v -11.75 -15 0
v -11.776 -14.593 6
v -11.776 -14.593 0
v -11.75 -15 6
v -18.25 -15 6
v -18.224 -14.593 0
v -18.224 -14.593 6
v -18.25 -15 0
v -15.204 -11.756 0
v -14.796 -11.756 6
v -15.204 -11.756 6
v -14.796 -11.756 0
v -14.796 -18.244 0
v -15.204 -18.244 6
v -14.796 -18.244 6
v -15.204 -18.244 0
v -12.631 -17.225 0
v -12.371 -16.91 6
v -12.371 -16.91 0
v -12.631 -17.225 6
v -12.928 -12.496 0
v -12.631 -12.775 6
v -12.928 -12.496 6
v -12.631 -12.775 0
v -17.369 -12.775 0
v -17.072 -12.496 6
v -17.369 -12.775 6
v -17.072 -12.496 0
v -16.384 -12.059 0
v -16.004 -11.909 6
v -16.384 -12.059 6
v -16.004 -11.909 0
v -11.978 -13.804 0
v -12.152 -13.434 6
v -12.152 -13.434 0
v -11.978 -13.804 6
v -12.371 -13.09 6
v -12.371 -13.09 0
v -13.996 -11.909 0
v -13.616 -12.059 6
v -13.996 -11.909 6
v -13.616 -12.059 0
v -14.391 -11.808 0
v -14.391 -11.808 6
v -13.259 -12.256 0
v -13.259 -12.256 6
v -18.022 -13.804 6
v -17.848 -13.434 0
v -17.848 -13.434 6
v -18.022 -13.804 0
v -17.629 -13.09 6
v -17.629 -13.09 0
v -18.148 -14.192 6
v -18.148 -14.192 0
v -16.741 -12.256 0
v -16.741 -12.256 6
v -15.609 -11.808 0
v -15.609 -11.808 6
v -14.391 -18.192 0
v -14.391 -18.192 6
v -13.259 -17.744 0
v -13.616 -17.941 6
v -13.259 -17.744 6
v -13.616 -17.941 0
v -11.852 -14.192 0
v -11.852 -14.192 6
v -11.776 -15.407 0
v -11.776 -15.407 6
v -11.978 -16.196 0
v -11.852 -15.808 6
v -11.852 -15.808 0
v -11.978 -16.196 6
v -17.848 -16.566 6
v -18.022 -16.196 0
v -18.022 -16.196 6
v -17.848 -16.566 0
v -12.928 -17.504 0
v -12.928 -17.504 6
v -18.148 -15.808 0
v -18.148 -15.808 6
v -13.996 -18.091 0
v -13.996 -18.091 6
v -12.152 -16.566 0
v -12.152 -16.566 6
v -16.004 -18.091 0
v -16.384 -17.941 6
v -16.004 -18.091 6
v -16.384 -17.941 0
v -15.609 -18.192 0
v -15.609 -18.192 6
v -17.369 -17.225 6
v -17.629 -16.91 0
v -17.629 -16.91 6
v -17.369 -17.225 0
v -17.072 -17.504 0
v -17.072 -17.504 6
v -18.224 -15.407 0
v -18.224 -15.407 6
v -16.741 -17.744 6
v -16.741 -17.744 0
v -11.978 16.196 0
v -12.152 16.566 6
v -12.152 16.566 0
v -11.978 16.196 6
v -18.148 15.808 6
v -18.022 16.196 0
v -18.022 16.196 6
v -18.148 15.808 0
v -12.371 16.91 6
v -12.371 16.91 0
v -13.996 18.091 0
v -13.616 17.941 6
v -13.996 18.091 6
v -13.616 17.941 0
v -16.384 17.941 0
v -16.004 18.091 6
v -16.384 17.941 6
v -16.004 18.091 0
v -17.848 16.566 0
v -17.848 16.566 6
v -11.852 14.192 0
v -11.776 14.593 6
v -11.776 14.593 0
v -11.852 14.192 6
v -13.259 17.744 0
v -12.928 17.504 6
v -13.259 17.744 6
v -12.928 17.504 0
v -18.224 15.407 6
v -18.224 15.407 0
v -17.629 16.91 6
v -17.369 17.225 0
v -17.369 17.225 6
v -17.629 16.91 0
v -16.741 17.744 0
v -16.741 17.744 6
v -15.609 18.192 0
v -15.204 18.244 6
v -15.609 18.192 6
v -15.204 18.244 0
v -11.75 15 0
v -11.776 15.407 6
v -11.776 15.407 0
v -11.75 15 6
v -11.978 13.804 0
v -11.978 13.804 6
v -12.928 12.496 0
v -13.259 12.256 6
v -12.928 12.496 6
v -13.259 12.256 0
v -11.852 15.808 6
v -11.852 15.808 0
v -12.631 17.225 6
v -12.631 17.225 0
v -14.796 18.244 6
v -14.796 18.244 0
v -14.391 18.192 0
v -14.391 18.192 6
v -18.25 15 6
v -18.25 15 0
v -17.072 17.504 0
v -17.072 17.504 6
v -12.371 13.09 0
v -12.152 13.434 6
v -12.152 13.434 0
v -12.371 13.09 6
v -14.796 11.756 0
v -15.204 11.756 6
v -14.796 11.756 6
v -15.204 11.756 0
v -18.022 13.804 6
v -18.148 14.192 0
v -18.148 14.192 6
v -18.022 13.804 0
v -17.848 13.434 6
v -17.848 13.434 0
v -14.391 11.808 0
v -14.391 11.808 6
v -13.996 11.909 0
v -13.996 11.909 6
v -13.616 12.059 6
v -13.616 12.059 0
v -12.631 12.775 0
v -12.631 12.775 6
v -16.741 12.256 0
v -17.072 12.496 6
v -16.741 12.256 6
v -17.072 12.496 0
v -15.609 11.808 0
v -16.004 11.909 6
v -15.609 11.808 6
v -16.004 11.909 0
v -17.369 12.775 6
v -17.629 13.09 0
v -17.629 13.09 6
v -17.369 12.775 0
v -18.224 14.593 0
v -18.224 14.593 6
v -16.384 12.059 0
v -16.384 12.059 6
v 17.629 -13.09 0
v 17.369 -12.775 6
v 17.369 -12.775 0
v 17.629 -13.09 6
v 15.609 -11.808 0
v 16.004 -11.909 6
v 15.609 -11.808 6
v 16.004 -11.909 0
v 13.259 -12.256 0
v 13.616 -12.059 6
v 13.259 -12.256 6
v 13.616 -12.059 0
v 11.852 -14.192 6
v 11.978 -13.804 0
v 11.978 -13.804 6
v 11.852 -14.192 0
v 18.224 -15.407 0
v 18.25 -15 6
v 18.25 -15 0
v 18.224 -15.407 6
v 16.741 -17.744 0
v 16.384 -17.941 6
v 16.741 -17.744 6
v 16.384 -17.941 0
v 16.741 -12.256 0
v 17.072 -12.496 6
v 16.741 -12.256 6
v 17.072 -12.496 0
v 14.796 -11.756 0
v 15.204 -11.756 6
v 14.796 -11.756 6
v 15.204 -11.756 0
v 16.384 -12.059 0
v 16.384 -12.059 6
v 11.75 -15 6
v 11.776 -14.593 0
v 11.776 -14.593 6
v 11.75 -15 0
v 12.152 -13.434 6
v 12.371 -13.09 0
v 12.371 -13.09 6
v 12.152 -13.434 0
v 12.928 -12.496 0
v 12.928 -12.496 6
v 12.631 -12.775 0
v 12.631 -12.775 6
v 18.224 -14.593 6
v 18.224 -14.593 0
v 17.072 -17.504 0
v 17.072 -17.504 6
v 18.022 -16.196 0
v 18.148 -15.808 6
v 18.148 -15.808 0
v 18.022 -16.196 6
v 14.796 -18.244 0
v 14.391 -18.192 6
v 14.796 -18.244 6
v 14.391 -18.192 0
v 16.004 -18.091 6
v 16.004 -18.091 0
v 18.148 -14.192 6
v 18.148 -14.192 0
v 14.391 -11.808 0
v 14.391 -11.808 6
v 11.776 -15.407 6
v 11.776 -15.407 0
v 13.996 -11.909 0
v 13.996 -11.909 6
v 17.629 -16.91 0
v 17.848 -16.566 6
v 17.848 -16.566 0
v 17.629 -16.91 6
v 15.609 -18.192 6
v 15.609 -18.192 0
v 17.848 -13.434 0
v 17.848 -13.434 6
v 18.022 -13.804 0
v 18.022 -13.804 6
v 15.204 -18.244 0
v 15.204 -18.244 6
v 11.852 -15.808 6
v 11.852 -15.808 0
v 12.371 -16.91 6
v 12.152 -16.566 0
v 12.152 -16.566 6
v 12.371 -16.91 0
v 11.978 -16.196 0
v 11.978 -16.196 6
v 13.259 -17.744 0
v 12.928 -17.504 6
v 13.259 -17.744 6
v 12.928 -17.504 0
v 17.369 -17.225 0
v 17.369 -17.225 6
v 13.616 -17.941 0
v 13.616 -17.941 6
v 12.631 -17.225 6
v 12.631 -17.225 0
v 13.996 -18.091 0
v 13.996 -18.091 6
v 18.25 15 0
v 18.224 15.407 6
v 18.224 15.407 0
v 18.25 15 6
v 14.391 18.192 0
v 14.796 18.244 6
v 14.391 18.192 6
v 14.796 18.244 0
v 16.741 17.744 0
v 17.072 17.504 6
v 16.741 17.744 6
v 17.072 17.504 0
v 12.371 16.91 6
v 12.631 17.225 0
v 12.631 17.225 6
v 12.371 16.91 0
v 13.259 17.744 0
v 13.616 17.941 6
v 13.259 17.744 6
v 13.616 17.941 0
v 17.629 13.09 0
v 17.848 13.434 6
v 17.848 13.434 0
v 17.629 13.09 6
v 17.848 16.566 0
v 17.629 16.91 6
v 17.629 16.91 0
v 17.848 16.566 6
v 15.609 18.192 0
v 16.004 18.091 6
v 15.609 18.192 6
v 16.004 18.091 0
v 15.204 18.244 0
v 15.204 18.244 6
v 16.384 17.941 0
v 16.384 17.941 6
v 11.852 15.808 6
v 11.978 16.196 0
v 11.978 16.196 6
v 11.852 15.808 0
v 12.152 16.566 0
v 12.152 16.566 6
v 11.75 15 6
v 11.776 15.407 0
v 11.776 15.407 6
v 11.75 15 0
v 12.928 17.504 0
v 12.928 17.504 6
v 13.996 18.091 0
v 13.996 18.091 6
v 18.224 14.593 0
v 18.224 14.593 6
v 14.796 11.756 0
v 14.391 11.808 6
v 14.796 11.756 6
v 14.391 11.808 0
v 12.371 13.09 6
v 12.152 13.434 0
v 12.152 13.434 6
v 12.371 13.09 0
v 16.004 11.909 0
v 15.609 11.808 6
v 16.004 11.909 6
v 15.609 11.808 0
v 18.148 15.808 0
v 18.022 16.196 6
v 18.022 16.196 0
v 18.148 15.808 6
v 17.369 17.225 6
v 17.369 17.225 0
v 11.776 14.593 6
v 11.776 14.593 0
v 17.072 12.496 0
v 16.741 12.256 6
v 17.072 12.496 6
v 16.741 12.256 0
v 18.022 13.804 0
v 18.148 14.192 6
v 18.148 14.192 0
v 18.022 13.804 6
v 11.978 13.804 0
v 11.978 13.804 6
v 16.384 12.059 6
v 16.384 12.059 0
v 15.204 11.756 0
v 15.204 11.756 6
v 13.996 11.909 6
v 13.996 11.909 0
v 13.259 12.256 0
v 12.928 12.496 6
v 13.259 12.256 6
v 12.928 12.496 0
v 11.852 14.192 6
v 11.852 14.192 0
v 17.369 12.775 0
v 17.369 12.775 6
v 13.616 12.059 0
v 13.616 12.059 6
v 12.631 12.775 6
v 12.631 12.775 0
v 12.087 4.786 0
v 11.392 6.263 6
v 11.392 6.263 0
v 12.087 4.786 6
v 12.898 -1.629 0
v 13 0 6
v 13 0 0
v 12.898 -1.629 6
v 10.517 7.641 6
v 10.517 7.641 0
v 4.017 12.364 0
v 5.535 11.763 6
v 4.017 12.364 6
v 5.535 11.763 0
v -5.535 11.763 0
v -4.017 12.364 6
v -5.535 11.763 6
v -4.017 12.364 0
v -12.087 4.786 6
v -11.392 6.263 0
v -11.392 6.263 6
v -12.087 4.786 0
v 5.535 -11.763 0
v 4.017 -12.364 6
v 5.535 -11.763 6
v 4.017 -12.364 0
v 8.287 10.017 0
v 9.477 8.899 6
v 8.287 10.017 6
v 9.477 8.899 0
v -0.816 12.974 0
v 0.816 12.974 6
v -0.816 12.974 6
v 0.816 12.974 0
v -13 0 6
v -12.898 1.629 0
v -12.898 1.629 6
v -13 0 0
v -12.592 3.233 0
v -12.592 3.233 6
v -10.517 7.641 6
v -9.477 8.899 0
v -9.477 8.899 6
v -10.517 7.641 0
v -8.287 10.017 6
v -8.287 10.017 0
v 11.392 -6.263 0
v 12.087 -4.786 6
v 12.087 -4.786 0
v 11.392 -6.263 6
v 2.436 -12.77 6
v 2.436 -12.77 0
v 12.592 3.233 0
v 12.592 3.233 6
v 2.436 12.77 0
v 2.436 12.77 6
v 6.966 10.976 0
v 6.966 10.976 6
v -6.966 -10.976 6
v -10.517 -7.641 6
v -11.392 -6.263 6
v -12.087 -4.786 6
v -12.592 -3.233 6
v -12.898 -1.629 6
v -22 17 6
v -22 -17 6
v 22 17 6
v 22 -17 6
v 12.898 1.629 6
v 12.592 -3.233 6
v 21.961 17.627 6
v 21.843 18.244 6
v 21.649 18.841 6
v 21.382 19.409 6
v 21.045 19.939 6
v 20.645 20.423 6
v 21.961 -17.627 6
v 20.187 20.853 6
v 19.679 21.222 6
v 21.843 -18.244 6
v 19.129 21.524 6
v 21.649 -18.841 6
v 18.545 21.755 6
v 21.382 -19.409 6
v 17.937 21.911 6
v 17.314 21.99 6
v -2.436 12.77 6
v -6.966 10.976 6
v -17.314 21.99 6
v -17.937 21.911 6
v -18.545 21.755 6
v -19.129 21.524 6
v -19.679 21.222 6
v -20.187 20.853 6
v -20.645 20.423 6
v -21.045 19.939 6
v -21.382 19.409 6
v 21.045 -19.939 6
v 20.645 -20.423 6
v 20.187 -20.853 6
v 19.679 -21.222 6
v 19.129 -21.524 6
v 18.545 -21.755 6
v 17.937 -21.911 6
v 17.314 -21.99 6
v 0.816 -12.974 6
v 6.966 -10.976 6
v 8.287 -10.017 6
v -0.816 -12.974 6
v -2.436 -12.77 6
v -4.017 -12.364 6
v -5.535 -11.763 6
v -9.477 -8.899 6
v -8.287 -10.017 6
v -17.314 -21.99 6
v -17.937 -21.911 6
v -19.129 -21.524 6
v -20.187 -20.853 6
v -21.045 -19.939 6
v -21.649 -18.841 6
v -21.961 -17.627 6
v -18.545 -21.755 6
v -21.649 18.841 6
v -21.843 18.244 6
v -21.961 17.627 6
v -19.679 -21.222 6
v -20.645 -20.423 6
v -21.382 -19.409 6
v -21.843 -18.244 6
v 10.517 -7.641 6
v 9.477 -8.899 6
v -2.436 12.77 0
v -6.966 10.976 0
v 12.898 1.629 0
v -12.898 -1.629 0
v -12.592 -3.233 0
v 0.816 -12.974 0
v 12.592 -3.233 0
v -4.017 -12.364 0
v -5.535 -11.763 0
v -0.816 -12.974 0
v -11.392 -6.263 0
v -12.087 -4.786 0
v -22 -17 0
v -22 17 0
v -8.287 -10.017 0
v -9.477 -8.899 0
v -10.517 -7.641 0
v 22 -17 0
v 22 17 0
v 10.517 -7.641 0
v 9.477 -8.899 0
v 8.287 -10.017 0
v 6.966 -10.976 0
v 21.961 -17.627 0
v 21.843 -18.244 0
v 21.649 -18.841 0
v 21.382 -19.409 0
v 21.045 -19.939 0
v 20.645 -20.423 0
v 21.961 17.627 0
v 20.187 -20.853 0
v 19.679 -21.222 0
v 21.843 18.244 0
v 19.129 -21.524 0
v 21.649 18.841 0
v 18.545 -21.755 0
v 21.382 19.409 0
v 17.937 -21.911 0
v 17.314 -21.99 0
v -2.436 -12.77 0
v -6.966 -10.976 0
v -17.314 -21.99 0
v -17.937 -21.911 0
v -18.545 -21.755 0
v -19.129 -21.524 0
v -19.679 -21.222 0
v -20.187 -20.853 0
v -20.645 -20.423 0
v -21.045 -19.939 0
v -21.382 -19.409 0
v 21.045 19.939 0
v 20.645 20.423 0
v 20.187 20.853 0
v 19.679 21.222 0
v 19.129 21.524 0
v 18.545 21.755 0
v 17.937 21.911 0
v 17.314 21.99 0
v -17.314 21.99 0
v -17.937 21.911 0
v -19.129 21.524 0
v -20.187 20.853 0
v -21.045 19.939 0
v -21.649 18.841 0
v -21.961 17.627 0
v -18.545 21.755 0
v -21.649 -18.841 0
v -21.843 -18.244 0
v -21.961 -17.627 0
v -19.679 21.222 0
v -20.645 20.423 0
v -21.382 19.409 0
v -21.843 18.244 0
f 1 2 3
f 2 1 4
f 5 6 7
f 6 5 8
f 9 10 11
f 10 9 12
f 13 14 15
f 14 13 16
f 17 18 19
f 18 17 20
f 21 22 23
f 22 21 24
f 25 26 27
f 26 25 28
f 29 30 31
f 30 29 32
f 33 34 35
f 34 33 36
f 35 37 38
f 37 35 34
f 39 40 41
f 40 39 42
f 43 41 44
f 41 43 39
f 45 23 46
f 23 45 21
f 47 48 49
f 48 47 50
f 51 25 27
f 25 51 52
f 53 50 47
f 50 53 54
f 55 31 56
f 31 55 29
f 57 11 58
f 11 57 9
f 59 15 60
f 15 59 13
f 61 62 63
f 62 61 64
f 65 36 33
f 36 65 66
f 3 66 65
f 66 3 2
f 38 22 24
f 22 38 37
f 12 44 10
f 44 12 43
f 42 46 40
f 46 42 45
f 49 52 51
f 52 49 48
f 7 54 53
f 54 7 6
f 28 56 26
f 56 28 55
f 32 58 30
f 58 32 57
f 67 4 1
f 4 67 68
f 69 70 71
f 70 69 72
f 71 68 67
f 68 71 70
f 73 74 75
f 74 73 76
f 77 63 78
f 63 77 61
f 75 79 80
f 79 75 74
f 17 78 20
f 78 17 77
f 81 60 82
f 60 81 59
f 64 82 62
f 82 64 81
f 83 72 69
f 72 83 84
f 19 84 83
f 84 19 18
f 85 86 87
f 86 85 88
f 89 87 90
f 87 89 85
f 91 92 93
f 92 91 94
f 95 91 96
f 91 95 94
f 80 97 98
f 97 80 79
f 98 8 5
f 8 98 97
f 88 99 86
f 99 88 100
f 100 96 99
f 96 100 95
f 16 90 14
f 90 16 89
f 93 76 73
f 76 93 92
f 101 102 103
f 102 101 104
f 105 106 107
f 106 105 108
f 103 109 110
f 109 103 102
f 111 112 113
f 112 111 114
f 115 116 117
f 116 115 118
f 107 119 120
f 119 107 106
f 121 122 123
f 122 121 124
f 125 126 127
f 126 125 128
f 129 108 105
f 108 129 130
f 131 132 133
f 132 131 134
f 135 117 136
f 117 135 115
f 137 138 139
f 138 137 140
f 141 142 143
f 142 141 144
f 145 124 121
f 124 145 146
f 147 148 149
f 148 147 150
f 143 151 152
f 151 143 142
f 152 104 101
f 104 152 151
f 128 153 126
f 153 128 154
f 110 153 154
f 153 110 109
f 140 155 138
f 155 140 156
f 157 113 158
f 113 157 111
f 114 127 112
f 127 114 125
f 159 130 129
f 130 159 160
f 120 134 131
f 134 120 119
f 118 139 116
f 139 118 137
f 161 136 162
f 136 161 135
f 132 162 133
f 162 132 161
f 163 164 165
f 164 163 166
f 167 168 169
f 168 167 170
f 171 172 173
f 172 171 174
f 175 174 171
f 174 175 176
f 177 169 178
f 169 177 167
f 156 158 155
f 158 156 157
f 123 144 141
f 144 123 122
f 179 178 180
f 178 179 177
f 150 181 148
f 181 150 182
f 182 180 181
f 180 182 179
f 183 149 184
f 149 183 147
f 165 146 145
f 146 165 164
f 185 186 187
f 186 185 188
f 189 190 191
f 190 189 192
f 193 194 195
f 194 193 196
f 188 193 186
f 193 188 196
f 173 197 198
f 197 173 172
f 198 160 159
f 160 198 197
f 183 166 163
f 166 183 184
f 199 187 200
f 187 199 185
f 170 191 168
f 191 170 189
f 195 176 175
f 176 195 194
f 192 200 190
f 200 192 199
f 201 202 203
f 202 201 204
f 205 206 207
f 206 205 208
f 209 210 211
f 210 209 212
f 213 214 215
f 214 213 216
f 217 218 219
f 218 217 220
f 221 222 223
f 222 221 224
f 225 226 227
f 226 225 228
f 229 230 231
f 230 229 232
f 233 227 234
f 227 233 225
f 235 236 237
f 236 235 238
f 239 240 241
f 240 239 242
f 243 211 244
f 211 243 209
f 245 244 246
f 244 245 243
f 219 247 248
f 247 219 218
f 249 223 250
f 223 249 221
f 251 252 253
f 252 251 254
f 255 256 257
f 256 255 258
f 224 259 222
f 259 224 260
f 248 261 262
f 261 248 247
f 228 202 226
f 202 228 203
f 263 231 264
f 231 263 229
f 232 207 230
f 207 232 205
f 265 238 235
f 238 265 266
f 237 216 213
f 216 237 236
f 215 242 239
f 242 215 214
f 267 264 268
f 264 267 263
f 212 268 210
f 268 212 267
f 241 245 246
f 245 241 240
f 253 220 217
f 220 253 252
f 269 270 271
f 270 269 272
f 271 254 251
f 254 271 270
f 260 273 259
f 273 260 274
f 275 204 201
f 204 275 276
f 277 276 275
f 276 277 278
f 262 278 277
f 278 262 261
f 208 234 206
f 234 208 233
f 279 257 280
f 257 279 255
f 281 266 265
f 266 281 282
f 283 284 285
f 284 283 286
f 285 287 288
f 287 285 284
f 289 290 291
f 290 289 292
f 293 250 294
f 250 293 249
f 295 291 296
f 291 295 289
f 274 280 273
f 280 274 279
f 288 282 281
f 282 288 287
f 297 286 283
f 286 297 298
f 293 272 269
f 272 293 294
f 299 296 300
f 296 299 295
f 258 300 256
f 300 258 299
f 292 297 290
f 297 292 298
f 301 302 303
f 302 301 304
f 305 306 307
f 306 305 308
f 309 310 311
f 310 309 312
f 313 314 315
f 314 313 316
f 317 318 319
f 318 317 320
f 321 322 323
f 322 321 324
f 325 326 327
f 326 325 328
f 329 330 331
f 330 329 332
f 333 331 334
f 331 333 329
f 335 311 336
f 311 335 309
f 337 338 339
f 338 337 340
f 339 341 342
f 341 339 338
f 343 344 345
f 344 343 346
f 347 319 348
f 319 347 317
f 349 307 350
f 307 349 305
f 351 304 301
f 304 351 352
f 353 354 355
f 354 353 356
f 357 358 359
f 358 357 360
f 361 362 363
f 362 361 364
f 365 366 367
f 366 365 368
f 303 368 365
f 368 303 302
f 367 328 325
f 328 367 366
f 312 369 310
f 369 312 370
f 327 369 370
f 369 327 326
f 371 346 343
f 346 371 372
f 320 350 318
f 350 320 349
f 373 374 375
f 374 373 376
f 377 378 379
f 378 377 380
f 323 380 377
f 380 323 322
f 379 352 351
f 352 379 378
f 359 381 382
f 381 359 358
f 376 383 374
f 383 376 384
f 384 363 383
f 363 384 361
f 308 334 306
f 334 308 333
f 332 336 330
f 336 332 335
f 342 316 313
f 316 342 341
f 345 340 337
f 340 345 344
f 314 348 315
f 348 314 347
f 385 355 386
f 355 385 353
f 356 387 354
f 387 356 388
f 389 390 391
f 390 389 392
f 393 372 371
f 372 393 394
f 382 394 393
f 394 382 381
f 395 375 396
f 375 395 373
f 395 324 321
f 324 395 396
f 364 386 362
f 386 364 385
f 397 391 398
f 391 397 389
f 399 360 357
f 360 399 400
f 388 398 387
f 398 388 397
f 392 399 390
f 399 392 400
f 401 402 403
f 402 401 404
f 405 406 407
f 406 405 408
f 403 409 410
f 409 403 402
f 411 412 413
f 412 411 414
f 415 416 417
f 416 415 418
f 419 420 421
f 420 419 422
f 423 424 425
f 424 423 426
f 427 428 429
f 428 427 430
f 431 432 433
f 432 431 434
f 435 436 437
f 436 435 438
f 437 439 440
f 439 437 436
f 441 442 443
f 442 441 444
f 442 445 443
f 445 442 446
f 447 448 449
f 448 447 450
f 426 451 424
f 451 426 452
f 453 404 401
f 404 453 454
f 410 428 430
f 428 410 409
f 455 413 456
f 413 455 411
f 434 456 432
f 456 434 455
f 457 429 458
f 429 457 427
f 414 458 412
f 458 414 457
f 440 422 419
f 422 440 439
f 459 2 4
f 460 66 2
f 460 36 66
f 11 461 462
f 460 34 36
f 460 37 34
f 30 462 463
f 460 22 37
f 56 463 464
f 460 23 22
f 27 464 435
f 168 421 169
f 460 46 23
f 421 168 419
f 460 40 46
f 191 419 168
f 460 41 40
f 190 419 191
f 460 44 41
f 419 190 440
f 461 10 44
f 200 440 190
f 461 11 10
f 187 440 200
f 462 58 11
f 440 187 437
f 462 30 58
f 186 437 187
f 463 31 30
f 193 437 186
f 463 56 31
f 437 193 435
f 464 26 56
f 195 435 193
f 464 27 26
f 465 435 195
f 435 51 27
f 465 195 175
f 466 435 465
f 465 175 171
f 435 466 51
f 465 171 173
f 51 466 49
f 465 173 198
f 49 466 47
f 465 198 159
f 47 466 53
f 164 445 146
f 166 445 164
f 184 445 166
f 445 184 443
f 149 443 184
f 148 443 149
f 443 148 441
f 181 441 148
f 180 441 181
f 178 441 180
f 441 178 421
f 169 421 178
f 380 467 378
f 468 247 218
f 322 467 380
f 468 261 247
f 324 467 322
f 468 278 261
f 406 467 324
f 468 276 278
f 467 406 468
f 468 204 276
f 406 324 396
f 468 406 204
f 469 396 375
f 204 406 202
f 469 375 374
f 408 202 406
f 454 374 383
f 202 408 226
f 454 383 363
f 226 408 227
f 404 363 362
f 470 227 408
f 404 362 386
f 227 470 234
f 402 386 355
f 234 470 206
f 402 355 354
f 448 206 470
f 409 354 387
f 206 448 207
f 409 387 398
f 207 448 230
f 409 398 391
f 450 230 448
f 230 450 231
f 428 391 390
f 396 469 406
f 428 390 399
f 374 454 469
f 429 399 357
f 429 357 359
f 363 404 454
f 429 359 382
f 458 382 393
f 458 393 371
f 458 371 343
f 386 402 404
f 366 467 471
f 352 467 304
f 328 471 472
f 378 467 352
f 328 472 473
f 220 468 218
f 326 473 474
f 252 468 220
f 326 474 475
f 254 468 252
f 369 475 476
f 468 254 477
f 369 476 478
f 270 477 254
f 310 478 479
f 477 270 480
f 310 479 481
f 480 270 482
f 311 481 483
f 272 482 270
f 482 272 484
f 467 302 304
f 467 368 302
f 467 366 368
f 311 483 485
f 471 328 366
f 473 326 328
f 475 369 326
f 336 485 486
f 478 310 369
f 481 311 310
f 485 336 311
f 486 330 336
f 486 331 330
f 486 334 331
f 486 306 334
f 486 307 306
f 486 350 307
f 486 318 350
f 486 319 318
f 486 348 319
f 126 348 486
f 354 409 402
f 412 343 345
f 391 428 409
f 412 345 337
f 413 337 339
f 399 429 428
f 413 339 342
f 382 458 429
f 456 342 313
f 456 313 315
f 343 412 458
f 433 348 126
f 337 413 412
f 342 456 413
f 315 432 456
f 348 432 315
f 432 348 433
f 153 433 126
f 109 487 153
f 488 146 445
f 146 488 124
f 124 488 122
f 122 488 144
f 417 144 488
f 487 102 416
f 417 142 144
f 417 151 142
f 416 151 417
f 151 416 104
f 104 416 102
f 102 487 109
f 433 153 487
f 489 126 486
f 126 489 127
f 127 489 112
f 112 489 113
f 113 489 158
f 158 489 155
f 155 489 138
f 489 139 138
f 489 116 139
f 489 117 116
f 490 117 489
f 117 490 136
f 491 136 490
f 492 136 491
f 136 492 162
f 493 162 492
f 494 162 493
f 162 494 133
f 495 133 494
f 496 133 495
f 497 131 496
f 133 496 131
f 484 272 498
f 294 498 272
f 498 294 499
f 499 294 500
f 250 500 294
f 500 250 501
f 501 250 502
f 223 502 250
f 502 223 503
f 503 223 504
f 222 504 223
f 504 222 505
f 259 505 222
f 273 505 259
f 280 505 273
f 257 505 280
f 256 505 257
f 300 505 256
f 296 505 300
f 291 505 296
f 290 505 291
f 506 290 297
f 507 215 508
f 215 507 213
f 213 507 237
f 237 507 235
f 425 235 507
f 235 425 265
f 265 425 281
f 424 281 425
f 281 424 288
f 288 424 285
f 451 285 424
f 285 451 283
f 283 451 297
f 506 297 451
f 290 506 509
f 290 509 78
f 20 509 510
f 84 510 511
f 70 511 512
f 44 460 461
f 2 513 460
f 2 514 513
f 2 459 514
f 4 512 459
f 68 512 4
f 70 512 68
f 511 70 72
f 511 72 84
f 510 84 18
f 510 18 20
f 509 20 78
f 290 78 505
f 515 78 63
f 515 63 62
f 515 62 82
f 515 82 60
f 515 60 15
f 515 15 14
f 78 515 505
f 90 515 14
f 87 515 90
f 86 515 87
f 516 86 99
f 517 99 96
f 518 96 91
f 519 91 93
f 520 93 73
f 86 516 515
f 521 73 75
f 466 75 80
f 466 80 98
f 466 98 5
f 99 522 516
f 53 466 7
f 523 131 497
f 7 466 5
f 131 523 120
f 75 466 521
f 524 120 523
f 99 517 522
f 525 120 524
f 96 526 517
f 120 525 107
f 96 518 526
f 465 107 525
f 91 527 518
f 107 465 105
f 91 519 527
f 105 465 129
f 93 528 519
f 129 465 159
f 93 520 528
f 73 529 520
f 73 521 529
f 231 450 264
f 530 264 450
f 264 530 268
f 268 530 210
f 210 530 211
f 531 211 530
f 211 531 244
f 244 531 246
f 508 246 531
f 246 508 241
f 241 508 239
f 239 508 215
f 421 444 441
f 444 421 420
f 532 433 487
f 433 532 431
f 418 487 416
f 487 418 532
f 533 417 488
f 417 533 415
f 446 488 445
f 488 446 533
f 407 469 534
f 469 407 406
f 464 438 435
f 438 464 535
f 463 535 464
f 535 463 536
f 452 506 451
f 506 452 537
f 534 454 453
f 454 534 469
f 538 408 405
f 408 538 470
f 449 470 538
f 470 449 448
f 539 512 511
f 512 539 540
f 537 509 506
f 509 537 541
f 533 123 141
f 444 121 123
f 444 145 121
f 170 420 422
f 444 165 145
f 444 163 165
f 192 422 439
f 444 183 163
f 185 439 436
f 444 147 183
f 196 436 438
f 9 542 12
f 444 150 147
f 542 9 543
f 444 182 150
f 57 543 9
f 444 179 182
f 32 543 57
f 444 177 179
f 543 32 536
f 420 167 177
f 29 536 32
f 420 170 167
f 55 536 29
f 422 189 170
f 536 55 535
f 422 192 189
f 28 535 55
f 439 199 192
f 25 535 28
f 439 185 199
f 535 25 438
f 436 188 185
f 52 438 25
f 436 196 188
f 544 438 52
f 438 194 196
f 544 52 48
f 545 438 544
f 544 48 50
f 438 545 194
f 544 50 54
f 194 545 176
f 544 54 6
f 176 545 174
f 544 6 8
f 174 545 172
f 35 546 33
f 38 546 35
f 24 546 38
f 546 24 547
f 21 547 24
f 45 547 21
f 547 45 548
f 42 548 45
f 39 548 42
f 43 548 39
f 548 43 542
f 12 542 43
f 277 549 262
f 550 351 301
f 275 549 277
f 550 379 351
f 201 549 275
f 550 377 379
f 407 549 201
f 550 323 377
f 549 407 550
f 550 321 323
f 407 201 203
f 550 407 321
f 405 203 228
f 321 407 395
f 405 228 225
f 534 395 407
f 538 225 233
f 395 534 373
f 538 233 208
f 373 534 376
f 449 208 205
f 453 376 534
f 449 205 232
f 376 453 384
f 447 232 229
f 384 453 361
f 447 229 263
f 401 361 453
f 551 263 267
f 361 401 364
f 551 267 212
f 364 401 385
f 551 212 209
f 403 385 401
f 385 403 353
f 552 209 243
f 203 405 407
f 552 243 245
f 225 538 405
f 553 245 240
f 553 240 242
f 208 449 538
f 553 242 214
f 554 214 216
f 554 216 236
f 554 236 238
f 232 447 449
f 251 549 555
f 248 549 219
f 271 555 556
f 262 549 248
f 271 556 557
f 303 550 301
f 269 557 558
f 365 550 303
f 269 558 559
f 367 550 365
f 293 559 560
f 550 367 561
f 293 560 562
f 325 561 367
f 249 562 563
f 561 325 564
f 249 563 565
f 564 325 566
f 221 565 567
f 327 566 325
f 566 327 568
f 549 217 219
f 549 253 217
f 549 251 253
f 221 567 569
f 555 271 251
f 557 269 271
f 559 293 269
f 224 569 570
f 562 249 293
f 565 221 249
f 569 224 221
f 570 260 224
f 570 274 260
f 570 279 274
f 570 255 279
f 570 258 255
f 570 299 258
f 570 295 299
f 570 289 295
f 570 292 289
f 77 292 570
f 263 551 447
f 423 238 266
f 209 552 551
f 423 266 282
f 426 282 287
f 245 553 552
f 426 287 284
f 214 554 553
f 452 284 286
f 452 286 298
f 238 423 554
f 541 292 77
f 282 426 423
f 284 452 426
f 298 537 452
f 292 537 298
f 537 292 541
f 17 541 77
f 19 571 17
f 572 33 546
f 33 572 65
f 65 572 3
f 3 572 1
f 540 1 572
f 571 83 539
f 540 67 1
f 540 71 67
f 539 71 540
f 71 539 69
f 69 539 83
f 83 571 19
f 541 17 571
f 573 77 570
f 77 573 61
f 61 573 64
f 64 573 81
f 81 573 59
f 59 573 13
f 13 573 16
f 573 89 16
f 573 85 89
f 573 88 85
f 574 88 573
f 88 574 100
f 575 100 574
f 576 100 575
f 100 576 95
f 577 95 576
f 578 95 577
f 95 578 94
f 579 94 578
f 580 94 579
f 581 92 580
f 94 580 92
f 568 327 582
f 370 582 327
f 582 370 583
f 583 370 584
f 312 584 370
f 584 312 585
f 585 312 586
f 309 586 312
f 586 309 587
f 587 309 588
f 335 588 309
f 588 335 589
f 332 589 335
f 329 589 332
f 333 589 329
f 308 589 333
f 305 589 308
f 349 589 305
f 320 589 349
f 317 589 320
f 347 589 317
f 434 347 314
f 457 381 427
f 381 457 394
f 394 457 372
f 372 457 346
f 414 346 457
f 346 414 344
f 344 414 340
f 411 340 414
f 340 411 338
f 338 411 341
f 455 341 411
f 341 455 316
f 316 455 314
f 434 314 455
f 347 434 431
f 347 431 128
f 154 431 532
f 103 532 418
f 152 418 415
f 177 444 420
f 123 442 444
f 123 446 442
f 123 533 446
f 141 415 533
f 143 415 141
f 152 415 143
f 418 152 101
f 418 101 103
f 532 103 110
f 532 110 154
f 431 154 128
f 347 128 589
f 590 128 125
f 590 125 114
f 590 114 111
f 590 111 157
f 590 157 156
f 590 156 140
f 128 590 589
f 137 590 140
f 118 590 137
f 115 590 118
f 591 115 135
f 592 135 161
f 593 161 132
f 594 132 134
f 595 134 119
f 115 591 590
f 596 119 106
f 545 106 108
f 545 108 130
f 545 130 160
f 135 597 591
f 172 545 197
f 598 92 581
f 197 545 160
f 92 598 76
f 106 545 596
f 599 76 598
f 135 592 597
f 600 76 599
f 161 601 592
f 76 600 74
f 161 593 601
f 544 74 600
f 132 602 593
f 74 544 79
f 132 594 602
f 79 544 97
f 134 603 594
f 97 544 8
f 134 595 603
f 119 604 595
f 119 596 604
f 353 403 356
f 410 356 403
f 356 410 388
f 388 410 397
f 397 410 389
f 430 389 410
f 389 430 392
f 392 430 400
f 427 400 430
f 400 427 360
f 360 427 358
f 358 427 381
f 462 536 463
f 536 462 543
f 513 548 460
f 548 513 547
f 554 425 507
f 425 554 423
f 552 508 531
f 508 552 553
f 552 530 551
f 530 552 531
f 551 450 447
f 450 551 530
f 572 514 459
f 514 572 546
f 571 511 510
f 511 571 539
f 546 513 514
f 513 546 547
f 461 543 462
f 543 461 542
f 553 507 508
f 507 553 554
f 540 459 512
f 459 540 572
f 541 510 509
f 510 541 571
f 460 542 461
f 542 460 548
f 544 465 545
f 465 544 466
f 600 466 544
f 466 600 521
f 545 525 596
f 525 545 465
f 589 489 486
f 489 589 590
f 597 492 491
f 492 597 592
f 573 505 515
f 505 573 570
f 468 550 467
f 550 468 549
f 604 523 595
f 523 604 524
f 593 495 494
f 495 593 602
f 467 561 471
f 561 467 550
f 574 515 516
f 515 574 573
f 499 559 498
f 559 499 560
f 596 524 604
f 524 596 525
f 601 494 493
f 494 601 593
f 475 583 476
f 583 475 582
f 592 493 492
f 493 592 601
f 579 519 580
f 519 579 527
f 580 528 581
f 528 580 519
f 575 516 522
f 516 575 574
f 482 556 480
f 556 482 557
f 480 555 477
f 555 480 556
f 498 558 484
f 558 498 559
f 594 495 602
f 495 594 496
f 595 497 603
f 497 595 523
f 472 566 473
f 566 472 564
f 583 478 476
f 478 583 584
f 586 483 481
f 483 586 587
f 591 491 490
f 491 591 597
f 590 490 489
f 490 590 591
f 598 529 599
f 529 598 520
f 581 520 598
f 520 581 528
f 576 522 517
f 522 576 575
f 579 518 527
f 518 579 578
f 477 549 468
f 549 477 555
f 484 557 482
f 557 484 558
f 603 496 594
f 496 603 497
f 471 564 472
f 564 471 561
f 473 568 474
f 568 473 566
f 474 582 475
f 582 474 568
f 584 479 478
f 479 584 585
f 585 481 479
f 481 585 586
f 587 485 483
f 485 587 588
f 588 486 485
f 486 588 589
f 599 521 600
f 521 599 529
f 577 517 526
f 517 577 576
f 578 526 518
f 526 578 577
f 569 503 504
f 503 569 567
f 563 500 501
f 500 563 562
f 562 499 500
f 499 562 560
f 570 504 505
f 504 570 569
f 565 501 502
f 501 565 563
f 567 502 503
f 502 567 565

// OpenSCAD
$fn = 50;


difference() {
	union() {
		hull() {
			translate(v = [-17.0000000000, 17.0000000000, 0]) {
				cylinder(h = 6, r = 5);
			}
			translate(v = [17.0000000000, 17.0000000000, 0]) {
				cylinder(h = 6, r = 5);
			}
			translate(v = [-17.0000000000, -17.0000000000, 0]) {
				cylinder(h = 6, r = 5);
			}
			translate(v = [17.0000000000, -17.0000000000, 0]) {
				cylinder(h = 6, r = 5);
			}
		}
	}
	union() {
		#translate(v = [-15.0000000000, -15.0000000000, -100.0000000000]) {
			cylinder(h = 200, r = 3.2500000000);
		}
		#translate(v = [-15.0000000000, 15.0000000000, -100.0000000000]) {
			cylinder(h = 200, r = 3.2500000000);
		}
		#translate(v = [15.0000000000, -15.0000000000, -100.0000000000]) {
			cylinder(h = 200, r = 3.2500000000);
		}
		#translate(v = [15.0000000000, 15.0000000000, -100.0000000000]) {
			cylinder(h = 200, r = 3.2500000000);
		}
		#cylinder(h = 6, r = 13.0000000000);
	}
}
